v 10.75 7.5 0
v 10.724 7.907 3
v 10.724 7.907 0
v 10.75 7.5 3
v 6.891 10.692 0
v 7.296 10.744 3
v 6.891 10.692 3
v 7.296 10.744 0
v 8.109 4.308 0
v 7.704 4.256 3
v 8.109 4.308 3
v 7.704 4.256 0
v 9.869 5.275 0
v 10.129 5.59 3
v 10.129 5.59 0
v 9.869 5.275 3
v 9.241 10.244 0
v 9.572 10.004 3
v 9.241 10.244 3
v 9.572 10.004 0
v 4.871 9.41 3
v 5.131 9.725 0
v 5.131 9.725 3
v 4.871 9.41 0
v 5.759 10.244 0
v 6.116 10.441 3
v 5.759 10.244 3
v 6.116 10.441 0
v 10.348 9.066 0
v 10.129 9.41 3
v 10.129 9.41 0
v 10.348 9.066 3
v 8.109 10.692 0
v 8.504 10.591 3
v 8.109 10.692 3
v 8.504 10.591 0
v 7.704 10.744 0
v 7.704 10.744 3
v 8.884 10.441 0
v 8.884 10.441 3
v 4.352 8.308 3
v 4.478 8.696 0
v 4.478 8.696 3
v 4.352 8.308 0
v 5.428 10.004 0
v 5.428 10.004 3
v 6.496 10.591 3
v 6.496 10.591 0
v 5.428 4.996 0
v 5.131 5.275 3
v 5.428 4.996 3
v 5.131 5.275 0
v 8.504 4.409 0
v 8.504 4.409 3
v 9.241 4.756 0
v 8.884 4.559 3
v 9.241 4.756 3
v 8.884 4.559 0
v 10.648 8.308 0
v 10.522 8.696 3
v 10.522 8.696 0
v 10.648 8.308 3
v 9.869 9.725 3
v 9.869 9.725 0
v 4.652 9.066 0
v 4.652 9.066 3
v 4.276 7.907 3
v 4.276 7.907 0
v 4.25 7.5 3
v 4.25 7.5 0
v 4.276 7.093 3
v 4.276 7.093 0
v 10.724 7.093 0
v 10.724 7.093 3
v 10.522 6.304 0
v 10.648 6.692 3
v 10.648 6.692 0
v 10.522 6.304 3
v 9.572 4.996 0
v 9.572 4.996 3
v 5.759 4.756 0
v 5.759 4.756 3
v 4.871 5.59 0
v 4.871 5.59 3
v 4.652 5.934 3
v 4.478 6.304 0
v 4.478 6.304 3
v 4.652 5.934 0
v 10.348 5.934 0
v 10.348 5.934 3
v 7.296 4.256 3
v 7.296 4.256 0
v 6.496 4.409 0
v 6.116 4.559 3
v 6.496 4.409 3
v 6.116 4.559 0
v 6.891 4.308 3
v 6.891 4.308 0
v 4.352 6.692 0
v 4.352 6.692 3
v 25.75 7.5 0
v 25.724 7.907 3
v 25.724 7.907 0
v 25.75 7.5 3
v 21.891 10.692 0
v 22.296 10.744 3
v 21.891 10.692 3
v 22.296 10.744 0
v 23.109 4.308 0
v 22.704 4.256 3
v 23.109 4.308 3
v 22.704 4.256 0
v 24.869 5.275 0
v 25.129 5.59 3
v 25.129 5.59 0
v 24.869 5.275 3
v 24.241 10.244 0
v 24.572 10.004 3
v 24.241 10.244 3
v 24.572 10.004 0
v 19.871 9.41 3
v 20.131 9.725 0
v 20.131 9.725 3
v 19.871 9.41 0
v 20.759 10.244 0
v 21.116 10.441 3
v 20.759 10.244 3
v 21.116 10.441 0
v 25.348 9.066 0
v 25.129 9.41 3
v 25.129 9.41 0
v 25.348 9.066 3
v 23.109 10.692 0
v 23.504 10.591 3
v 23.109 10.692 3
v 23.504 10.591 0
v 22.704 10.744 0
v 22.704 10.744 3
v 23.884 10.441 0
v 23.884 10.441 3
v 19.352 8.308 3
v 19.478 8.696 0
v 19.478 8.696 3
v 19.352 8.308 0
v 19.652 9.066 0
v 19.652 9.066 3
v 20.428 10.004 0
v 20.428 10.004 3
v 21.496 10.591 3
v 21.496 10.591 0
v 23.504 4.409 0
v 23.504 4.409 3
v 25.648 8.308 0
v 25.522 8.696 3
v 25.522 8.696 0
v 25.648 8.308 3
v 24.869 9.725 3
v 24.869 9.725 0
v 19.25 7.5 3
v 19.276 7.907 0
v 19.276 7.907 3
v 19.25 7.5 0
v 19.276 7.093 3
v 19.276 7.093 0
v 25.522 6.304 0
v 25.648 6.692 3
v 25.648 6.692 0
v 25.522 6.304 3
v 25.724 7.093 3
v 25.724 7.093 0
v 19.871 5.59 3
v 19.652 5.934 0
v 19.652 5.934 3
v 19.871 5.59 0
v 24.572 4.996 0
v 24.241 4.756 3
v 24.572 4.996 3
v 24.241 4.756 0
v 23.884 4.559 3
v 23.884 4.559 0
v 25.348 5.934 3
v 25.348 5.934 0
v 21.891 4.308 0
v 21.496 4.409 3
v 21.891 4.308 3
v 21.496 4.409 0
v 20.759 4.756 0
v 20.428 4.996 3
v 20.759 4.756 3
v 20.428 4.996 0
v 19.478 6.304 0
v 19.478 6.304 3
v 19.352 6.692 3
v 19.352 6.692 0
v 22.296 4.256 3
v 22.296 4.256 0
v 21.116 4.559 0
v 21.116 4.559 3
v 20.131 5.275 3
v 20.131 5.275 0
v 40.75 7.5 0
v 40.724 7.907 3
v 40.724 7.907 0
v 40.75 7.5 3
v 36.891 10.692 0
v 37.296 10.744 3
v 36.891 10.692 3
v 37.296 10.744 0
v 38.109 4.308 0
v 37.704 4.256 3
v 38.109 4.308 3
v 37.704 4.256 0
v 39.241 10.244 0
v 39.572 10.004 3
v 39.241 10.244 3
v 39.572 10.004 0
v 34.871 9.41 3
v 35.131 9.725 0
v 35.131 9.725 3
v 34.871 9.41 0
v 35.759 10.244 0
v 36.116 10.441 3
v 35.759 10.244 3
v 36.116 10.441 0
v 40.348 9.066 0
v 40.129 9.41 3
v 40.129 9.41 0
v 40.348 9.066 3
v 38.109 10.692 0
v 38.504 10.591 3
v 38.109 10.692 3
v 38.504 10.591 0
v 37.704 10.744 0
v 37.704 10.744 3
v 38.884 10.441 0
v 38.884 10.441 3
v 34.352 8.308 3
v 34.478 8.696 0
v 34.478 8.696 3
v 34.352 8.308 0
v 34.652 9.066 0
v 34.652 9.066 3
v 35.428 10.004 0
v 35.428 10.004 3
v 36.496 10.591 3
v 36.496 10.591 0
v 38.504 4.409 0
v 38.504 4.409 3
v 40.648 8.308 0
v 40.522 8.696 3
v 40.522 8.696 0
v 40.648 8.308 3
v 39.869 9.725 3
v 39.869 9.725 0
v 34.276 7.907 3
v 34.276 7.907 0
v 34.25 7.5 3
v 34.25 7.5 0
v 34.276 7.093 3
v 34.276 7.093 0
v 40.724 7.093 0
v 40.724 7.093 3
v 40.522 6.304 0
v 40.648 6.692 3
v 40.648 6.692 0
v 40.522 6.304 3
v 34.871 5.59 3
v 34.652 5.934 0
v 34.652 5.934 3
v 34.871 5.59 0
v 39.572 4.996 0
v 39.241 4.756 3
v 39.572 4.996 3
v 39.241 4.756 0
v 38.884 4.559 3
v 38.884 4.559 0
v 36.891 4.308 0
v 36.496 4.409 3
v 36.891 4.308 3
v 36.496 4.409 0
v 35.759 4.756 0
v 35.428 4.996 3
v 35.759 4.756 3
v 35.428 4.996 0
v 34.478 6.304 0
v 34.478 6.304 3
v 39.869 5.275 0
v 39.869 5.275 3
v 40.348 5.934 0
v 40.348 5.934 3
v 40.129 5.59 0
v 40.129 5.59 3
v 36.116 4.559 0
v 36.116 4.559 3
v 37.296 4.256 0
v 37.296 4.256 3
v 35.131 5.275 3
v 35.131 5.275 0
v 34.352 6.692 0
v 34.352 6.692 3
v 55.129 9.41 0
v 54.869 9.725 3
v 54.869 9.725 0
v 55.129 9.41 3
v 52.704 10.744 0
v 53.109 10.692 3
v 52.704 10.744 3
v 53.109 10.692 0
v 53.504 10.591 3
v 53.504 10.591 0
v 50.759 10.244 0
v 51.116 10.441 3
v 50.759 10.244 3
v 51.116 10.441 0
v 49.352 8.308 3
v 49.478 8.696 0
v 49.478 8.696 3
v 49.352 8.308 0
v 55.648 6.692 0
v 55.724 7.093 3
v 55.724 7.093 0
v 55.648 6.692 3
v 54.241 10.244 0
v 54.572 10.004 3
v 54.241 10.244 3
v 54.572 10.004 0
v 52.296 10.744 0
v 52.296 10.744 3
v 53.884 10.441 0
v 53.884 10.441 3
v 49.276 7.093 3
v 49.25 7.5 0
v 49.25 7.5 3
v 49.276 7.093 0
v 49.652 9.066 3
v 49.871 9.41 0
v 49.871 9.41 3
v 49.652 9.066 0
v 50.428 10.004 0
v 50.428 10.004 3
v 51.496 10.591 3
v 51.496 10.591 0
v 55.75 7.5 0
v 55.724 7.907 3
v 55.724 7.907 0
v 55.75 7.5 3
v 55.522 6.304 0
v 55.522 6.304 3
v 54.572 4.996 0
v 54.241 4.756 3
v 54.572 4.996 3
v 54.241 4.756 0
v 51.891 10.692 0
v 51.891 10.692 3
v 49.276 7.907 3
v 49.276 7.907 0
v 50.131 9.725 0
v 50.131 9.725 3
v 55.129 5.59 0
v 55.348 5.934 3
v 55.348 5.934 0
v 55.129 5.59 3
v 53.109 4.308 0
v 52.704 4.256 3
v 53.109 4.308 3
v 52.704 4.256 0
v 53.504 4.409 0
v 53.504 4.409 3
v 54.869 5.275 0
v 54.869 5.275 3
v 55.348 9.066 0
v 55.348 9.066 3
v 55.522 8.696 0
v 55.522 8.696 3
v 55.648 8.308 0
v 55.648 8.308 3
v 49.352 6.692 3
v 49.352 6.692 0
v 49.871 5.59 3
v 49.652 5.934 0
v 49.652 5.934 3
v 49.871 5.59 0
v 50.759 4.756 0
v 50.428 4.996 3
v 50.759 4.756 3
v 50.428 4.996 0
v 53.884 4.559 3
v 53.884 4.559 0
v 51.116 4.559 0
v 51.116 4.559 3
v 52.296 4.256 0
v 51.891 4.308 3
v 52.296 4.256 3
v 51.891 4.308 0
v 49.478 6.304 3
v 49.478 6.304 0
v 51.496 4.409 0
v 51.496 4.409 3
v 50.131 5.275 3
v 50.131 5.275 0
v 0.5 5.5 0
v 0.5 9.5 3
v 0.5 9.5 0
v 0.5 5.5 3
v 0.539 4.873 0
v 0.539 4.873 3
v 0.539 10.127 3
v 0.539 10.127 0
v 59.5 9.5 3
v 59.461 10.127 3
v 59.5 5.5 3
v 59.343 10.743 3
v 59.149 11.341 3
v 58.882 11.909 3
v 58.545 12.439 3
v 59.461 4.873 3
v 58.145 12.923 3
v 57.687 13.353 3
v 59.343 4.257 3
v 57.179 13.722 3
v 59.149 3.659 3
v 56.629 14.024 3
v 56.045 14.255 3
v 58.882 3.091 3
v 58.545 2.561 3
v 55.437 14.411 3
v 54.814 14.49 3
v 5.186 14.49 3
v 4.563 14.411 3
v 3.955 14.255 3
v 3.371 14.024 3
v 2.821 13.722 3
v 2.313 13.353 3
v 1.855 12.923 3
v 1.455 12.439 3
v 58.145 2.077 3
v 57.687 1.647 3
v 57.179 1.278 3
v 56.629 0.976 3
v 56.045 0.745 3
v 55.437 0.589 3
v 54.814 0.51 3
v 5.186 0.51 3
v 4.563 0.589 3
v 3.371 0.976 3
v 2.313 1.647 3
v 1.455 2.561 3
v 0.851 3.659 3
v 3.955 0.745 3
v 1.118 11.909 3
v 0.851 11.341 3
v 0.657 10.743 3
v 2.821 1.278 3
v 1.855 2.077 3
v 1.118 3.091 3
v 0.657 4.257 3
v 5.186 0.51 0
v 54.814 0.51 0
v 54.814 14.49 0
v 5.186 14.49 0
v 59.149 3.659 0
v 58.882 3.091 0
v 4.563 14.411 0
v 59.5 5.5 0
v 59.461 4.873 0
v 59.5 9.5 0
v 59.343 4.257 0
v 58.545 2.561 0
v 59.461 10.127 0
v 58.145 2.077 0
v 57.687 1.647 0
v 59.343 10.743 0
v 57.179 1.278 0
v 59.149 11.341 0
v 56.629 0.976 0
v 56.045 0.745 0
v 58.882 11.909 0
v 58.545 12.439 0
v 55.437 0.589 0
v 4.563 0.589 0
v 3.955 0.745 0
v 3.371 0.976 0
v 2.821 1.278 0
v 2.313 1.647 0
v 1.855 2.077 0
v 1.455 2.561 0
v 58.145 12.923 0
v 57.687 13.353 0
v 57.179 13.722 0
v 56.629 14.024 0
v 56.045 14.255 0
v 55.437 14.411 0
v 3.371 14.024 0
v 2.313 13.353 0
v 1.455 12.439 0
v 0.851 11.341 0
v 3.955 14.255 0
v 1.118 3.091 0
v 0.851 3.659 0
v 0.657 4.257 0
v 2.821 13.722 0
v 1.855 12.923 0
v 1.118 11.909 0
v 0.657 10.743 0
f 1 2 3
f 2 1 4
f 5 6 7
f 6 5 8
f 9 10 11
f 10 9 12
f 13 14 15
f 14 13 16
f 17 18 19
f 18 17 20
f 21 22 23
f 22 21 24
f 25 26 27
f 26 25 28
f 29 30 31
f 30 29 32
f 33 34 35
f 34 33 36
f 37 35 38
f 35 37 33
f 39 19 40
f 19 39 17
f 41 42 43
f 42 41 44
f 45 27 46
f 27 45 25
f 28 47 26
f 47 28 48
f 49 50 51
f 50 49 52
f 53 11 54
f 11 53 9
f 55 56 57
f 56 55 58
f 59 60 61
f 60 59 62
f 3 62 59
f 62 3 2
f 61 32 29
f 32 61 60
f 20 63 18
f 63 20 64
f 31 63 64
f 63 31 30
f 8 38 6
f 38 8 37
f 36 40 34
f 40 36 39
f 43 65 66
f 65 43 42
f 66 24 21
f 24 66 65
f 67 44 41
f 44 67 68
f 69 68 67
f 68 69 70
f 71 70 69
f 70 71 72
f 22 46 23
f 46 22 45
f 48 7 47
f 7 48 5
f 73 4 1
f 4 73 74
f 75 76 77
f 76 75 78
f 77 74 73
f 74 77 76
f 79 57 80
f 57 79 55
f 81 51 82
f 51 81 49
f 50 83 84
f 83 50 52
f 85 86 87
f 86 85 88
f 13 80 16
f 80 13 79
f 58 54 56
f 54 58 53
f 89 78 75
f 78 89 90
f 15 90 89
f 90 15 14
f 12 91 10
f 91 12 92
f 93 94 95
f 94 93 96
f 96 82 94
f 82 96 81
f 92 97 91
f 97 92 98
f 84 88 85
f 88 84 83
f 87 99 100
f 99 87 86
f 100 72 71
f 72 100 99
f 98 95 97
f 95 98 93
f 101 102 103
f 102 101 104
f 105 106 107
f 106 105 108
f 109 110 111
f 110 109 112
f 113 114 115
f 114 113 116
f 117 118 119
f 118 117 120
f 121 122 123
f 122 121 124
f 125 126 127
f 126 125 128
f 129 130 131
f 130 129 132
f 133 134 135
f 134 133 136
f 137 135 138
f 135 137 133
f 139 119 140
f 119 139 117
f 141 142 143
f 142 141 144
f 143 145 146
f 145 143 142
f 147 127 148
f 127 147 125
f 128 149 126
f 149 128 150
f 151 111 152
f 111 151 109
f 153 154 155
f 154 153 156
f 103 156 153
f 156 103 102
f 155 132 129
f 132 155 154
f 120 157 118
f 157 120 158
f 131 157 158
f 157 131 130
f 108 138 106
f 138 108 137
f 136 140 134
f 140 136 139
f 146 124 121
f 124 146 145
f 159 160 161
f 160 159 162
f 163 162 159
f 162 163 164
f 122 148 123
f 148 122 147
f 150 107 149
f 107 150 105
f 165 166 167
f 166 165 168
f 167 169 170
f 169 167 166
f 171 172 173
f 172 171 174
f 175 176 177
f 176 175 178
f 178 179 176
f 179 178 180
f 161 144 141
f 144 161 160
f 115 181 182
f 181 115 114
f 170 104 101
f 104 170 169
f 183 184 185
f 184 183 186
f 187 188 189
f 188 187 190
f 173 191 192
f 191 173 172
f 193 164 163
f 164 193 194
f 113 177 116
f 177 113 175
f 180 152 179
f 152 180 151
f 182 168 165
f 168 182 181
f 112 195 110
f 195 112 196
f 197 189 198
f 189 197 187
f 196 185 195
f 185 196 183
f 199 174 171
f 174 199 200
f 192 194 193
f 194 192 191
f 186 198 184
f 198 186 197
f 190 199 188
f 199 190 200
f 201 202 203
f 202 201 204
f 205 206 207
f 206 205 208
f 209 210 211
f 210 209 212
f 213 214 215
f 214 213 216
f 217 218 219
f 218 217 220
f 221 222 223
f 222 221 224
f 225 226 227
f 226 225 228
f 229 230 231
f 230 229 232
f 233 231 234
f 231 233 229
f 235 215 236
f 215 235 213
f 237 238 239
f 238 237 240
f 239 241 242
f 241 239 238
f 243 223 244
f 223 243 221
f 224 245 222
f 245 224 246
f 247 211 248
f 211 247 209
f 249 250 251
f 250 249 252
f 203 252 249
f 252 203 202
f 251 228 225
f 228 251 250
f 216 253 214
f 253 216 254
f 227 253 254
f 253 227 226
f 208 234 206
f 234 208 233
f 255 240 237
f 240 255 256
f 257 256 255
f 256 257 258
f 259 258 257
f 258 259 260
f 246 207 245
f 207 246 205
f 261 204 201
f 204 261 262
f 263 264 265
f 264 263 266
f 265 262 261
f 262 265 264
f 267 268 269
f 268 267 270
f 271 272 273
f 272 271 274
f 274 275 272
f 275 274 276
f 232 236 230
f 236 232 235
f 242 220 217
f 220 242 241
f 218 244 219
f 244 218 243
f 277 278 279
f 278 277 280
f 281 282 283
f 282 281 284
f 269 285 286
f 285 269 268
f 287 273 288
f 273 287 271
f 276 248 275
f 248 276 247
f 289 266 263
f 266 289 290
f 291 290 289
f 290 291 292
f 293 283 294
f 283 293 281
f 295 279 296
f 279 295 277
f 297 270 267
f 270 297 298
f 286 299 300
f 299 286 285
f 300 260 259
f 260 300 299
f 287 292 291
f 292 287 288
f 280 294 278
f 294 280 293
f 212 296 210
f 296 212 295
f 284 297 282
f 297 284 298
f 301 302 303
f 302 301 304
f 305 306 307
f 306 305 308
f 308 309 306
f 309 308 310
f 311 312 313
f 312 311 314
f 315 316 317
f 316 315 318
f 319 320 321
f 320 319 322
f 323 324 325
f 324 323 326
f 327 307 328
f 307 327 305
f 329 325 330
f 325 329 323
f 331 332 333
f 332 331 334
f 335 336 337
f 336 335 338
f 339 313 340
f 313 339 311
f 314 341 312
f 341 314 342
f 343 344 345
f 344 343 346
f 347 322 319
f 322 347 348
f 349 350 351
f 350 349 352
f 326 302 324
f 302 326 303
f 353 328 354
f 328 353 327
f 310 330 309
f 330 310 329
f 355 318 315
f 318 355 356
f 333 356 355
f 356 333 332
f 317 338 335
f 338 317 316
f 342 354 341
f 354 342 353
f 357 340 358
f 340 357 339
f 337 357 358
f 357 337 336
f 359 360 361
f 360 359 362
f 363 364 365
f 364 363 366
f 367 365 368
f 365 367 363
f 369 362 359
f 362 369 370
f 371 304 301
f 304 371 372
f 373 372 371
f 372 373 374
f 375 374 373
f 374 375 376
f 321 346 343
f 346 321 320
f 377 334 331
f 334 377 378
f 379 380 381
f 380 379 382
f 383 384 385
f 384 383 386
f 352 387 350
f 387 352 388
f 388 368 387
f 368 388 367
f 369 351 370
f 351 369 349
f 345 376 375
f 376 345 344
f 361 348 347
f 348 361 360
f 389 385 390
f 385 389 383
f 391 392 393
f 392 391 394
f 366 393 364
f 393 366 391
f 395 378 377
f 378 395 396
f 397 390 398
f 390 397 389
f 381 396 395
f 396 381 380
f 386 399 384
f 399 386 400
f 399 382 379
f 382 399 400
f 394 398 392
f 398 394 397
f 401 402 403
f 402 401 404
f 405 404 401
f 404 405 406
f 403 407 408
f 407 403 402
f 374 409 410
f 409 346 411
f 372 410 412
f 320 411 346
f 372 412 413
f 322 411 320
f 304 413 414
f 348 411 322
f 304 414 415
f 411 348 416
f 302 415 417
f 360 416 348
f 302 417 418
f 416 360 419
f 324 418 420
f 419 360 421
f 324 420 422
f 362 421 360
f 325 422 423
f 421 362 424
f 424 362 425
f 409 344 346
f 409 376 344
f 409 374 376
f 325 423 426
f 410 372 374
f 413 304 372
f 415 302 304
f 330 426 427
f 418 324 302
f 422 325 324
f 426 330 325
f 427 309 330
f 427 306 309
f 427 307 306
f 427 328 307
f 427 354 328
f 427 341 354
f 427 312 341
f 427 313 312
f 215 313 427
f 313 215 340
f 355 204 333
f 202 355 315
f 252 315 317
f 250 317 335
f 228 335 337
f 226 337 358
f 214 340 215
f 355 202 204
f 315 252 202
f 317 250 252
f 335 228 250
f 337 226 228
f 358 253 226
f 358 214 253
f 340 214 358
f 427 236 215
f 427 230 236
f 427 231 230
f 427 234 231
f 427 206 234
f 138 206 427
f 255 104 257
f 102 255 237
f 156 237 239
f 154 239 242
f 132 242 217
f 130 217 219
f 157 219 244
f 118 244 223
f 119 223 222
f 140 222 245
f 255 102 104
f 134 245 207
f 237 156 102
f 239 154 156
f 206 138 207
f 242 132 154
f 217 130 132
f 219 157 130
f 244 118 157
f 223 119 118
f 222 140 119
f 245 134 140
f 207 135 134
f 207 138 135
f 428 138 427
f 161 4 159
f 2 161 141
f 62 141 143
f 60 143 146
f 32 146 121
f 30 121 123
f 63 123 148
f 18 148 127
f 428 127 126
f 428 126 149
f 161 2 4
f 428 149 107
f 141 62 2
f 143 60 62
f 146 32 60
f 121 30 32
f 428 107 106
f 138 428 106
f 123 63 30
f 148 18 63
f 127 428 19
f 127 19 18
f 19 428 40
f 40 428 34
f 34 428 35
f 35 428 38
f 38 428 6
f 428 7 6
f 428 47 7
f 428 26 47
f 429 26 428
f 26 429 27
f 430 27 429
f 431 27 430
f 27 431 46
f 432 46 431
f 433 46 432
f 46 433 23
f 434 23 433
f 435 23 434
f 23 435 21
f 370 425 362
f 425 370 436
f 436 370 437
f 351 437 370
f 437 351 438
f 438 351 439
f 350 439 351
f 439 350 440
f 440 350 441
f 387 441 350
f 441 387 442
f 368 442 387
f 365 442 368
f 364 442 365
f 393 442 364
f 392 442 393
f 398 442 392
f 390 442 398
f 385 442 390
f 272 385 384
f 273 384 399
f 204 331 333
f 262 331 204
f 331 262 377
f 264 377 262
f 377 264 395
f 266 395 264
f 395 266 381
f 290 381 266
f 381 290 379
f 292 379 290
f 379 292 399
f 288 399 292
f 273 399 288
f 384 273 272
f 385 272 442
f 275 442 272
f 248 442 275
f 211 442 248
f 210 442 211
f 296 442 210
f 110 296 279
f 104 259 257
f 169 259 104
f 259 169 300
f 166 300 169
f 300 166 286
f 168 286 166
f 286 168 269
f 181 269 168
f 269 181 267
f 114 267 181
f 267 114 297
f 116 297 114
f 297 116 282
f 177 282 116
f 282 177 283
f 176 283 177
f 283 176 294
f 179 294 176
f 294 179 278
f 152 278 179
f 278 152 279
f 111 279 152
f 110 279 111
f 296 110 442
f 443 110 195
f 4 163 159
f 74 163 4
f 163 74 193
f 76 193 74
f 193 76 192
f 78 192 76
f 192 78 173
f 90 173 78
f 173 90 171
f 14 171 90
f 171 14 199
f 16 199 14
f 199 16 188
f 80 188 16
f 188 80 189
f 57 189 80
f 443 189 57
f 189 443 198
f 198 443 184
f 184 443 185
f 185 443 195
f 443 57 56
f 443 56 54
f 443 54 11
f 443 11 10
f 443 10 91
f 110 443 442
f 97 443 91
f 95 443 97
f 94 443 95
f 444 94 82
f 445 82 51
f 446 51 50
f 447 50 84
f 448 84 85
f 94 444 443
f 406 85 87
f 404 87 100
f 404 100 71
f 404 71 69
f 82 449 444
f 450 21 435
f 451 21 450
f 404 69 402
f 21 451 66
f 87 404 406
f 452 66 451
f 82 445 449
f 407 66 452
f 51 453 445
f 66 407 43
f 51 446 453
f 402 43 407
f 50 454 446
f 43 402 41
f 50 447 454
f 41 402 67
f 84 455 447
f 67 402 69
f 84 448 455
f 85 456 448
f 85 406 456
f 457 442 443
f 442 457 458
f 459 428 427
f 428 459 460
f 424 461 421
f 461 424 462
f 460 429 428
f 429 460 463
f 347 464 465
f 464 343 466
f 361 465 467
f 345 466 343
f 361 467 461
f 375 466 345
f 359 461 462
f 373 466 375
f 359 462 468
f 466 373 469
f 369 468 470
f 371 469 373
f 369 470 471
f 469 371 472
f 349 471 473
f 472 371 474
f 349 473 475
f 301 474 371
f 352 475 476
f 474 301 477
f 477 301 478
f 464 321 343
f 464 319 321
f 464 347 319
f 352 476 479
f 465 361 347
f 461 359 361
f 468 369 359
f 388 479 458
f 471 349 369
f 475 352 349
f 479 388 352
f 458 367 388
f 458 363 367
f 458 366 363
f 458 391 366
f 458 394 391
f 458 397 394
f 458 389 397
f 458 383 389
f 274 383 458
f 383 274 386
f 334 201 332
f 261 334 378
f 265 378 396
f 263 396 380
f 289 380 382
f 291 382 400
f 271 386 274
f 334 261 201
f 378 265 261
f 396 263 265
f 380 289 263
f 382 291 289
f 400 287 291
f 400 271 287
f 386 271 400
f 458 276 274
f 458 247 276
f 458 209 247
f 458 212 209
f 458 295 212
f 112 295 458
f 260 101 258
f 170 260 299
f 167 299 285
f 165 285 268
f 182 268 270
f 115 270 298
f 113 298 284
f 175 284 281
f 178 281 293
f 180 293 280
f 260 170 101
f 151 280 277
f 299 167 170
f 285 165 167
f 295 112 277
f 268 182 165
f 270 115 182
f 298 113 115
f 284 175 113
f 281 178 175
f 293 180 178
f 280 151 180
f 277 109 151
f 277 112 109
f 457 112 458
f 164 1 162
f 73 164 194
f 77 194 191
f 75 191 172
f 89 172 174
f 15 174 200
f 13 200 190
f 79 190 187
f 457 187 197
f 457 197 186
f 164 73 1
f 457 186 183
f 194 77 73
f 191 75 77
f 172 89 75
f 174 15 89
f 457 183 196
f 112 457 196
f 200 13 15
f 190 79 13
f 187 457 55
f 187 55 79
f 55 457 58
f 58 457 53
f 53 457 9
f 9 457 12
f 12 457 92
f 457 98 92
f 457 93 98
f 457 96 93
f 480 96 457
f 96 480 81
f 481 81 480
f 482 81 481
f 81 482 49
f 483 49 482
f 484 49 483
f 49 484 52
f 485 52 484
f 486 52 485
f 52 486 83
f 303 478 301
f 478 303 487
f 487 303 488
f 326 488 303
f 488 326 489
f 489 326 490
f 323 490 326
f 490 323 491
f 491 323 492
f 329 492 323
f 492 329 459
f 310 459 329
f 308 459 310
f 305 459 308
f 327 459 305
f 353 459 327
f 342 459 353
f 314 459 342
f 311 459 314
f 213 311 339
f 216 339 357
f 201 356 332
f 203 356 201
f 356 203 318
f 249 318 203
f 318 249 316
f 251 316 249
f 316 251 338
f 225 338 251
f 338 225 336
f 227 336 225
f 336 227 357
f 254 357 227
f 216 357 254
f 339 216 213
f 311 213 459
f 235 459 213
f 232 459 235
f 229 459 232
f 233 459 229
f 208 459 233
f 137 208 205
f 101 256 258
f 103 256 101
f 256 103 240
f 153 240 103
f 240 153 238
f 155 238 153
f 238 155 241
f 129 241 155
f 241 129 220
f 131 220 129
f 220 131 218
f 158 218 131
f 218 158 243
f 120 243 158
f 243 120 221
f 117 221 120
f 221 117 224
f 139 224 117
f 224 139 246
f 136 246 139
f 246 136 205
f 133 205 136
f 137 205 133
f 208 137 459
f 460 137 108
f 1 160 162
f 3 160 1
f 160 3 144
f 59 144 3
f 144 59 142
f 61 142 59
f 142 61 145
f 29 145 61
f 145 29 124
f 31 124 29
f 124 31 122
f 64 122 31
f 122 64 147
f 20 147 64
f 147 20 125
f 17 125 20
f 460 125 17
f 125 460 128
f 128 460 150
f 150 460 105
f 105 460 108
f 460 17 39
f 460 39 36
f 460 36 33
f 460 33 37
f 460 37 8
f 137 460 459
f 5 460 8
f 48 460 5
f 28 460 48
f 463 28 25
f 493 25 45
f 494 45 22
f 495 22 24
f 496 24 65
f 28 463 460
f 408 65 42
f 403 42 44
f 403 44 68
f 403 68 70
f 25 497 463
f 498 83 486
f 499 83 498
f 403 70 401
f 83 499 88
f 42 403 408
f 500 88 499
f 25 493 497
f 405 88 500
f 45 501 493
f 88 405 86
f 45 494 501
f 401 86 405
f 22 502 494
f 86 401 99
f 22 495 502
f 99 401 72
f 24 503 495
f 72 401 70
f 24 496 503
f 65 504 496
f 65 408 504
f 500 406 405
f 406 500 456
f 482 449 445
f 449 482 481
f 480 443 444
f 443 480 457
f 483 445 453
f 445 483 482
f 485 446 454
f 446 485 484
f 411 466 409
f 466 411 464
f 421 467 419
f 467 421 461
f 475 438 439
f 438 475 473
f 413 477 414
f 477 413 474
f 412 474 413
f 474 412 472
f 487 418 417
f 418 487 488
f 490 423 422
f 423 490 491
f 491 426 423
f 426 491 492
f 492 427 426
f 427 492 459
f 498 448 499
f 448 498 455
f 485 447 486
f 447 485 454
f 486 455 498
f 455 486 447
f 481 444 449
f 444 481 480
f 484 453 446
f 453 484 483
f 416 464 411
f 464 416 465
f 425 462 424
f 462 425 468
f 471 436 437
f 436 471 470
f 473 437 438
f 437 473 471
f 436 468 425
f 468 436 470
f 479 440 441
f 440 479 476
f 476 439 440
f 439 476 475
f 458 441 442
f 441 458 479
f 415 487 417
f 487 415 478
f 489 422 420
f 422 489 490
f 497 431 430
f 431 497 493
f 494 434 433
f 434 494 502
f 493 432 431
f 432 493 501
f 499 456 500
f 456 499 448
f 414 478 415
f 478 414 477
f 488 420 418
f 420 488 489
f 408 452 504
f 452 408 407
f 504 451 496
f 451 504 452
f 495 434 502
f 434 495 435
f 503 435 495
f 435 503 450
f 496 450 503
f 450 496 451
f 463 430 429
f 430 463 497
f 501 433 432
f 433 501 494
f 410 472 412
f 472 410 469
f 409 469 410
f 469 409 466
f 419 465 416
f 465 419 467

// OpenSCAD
// Generated by SolidPython 1.1.3 on 2023-01-09 14:55:34
$fn = 50;


difference() {
	union() {
		translate(v = [30.0000000000, 7.5000000000, 0]) {
			rotate(a = [0, 0, 0]) {
				hull() {
					translate(v = [-24.5000000000, 2.0000000000, 0]) {
						rotate(a = [0, 0, 0]) {
							translate(v = [0, 0, 0]) {
								rotate(a = [0, 0, 0]) {
									cylinder(h = 3, r = 5);
								}
							}
						}
					}
					translate(v = [24.5000000000, 2.0000000000, 0]) {
						rotate(a = [0, 0, 0]) {
							translate(v = [0, 0, 0]) {
								rotate(a = [0, 0, 0]) {
									cylinder(h = 3, r = 5);
								}
							}
						}
					}
					translate(v = [-24.5000000000, -2.0000000000, 0]) {
						rotate(a = [0, 0, 0]) {
							translate(v = [0, 0, 0]) {
								rotate(a = [0, 0, 0]) {
									cylinder(h = 3, r = 5);
								}
							}
						}
					}
					translate(v = [24.5000000000, -2.0000000000, 0]) {
						rotate(a = [0, 0, 0]) {
							translate(v = [0, 0, 0]) {
								rotate(a = [0, 0, 0]) {
									cylinder(h = 3, r = 5);
								}
							}
						}
					}
				}
			}
		}
	}
	union() {
		translate(v = [7.5000000000, 7.5000000000, 0]) {
			rotate(a = [0, 0, 0]) {
				translate(v = [0, 0, -50]) {
					rotate(a = [0, 0, 0]) {
						cylinder(h = 100, r = 3.2500000000);
					}
				}
			}
		}
		translate(v = [22.5000000000, 7.5000000000, 0]) {
			rotate(a = [0, 0, 0]) {
				translate(v = [0, 0, -50]) {
					rotate(a = [0, 0, 0]) {
						cylinder(h = 100, r = 3.2500000000);
					}
				}
			}
		}
		translate(v = [37.5000000000, 7.5000000000, 0]) {
			rotate(a = [0, 0, 0]) {
				translate(v = [0, 0, -50]) {
					rotate(a = [0, 0, 0]) {
						cylinder(h = 100, r = 3.2500000000);
					}
				}
			}
		}
		translate(v = [52.5000000000, 7.5000000000, 0]) {
			rotate(a = [0, 0, 0]) {
				translate(v = [0, 0, -50]) {
					rotate(a = [0, 0, 0]) {
						cylinder(h = 100, r = 3.2500000000);
					}
				}
			}
		}
	}
}
/***********************************************
*********      SolidPython code:      **********
************************************************
 
from solid import *
import os
import subprocess

import oomB

import opsc_library_gen

mode = "laser"
#mode = "3d_print"

defined_objects = {}

radius_dict = {}
countersunk_dict = {}


def set_mode(m):
    global mode
    mode = m
    radius_dict['M6'] = 6.5/2
    radius_dict['M3'] = 3.3/2
    if mode == "laser":
        radius_dict['M6'] = 6/2
        radius_dict['M3'] = 3/2

    countersunk_dict['M3'] = {}
    countersunk_dict['M3']['little_rad'] = radius_dict['M3']
    countersunk_dict['M3']['big_rad'] = (5.5+0.6)/2
    if mode == "laser":
        countersunk_dict['M3']['big_rad'] = (4.75+0.6)/2
        countersunk_dict['M3']['little_rad'] = (4.75+0.6)/2

    countersunk_dict['M3']['height'] = 1.7


def opsc_make_object(filename, objects, save_type="none",resolution=50, layers = 1, tilediff = 200, mode="laser"):
    set_mode(mode)
    save_type = save_type.lower()
    os.makedirs(os.path.dirname(filename), exist_ok=True)
    final_object = opsc_get_object(objects)
    # Save the final object to the specified filename    
    scad_render_to_file(final_object, filename, file_header='$fn = %s;' % resolution, include_orig_code=True)
    if mode == "laser":
        filename_laser = filename.replace(".scad","-flat.scad")
        scad_render_to_file(getLaser(final_object, layers=layers, tilediff=tilediff), filename_laser, file_header='$fn = %s;' % resolution, include_orig_code=True)
        if save_type == "all":
            saveToAll(filename_laser)
        elif save_type == "dxf":
            saveToDxf(filename_laser)
    if save_type == "all":
        saveToAll(filename)
    elif save_type == "dxf":
        saveToDxf(filename)


def opsc_get_object(objects):
    # Create the solidpython objects
    positive_objects = [get_opsc_item(obj) for obj in objects if obj['type'] == 'positive']
    negative_objects = [get_opsc_item(obj) for obj in objects if obj['type'] == 'negative']
    # Union the positive objects
    positive_object = union()(*positive_objects)
    # Union the negative objects
    negative_object = union()(*negative_objects)
    # Create the final object by subtracting the negative objects from the positive objects
    return difference()(positive_object, negative_object)

def get_opsc_item(params):
    # A dictionary to map radius string values to numerical values
    #radius_dict = {'small': 5, 'medium': 10, 'large': 15}
    # An array of function names for basic shapes
    basic_shapes = ['cube', 'sphere', 'cylinder']
    
    # An array of function names for other shapes
    other_shapes = ['hole', 'slot', 'rounded_rectangle', 'countersunk']
    


    # Convert radius to r if present, and remove radius from the params dictionary
    if 'radius' in params:
        if isinstance(params['radius'], str):
            # Use the radius_dict to map the radius string value to a numerical value
            params['r'] = radius_dict[params['radius']]
        else:
            params['r'] = params['radius']
        del params['radius']
    

    # Check if the object type is a basic shape
    if params['shape'] in basic_shapes:
        # Remove shape and unexpected dictionary values
        allowed_keys = {'size', 'r', 'r1', 'r2', 'd', 'h', 'rw', 'rh', 'dw', 'dh'}
        shape_params = {k: v for k, v in params.items() if k in allowed_keys}

        # Call the corresponding function for the shape parameter, using ** notation to pass the shape_params dictionary as keyword arguments
        return get_opsc_transform(params,globals()[params['shape']](**shape_params))
    
    # If the object type is not a basic shape, check if it's a defined object or one of the other shapes
    elif params['shape'] in other_shapes:
        # Call the corresponding function for the shape parameter, passing the params dictionary as an argument
        p2 = copy.deepcopy(params)
        p2["pos"] = [0,0,0]
        return get_opsc_transform(params,globals()[params['shape']](p2))
    
    # If the object is not a basic shape or a defined object, try to import it from a .scad file
    else:
        obj = defined_objects[params['shape']]
        return get_opsc_transform(params,obj)

def get_opsc_transform(params, solid_obj):
    # Rotate the object based on the 'rot' field in the params dictionary, or the 'rotX', 'rotY', and 'rotZ' fields if 'rot' is not present
    rot = params.get('rot', [])
    if rot:
        rotX, rotY, rotZ = rot
    else:
        rotX = params.get('rotX', 0)
        rotY = params.get('rotY', 0)
        rotZ = params.get('rotZ', 0)
    solid_obj = rotate([rotX, rotY, rotZ])(solid_obj)

    # Translate the object based on the 'pos' field in the params dictionary, or the 'x', 'y', and 'z' fields if 'pos' is not present
    pos = params.get('pos', [])
    if pos:
        x, y, z = pos
    else:
        x = params.get('x', 0)
        y = params.get('y', 0)
        z = params.get('z', 0)
    solid_obj = translate([x, y, z])(solid_obj)
    return solid_obj


import random

def opsc_easy_array(type, shape, repeats, pos_start, shift_arr, **kwargs):
    for i in range(0,3):
        repeats.append(1)
        pos_start.append(0)
        shift_arr.append(0)
    return_objects = []

    for x in range(0,repeats[0]):
        for y in range(0,repeats[1]):
            for z in range(0,repeats[2]):
                return_objects.append(opsc_easy(type, shape, pos=[pos_start[0]+x*shift_arr[0],pos_start[1]+y*shift_arr[1],pos_start[2]+z*shift_arr[2]], **kwargs))
    return return_objects                



def opsc_easy(type, shape, **kwargs):
    obj = {
        'type': type,
        'shape': shape
    }
    for param in ['size', 'r', 'r1', 'r2', 'd', 'h', 'rw', 'rh', 'dw', 'dh', 'pos', 'x', 'y', 'z', 'rot', 'rotX', 'rotY', 'rotZ', "w"]:
        if param in kwargs:
            obj[param] = kwargs[param]
    return obj

def hole(params):
    p2 = copy.deepcopy(params)  
    # Check if the radius is a string and replace it with the corresponding value from the dictionary
    if isinstance(p2['r'], str):
        p2['r'] = radius_dict[p2['r']]
    
    # Set the height to 100 if not specified
    if 'h' not in p2:
        p2['h'] = 100
        p2["pos"] = [0,0,-50]
    p2["center"] = True
    # Create the cylinder object
    p2["shape"] = "cylinder"
    p2["type"] = "positive"

    return get_opsc_item(p2)

import copy

def countersunk(params):
    p2 = copy.deepcopy(params)
    counter_rad = p2['r']
    p2['r'] = radius_dict[p2['r']]
    hp = copy.deepcopy(p2)
    hp["type"] = "positive"
    hp["shape"] = "hole"
    del hp["rot"]
    hol = get_opsc_item(hp)
    
    cp = copy.deepcopy(p2)
    cp["h"] = countersunk_dict[counter_rad]["height"]
    cp["r2"] = countersunk_dict[counter_rad]["little_rad"]
    cp["r1"] = countersunk_dict[counter_rad]["big_rad"]
    del cp["r"]
    del cp["rot"]
    cp["type"] = "positive"
    cp["shape"] = "cylinder"
    cp["pos"] = [0,0,0]

    top = get_opsc_item(cp)
    return union()(hol,top)



def slot(params):  
    p2 = copy.deepcopy(params) 
    if isinstance(p2['r'], str):
        p2['r'] = radius_dict[p2['r']]
    p2["type"] = "positive"
    p2["shape"] = "hole"
    del p2["rot"]
    p2["pos"] = [0,0,0]
    left = copy.deepcopy(p2)
    right = copy.deepcopy(p2)
    left["pos"][0] = p2["w"] / 2 - p2["r"] 
    
    right["pos"][0] = -p2["w"] / 2 + p2["r"] 
    pass
    leftObj = get_opsc_item(left)
    rightObj = get_opsc_item(right)
    return hull()(leftObj, rightObj)

def rounded_rectangle(params):   
    p2 = copy.deepcopy(params) 
    p2["h"] = p2["size"][2]
    p2["pos"] = p2.get("pos", [0, 0, 0]) 
    p2["type"] = "positive"
    p2["shape"] = "hole"
    p2["pos"] = [0,0,0]
    
    if 'rot' in p2:
        del p2["rot"]   
    if 'r' not in p2:
        p2["r"] = 5 
    tl = copy.deepcopy(p2)
    tr = copy.deepcopy(p2)
    bl = copy.deepcopy(p2)
    br = copy.deepcopy(p2)
    tl["pos"][0] = -(p2["size"][0] - p2["r"]*2)/2
    tl["pos"][1] = (p2["size"][1] - p2["r"]*2)/2
    tr["pos"][0] = (p2["size"][0] - p2["r"]*2)/2
    tr["pos"][1] = (p2["size"][1] - p2["r"]*2)/2
    bl["pos"][0] = -(p2["size"][0] - p2["r"]*2)/2
    bl["pos"][1] = -(p2["size"][1] - p2["r"]*2)/2
    br["pos"][0] = (p2["size"][0] - p2["r"]*2)/2
    br["pos"][1] = -(p2["size"][1] - p2["r"]*2)/2
    del tl["size"]
    del tr["size"]
    del bl["size"]
    del br["size"]
    tlo = get_opsc_item(tl)
    tro = get_opsc_item(tr)
    blo = get_opsc_item(bl)
    bro = get_opsc_item(br)    
    return hull()(tlo, tro, blo, bro)



def import_scad_object(filename):
    # Import the .scad file and convert it to a solidpython object
    #filename = "parts"
    obj = import_scad(filename)
    return obj.main()
    


import os
import solid as solidpython

# A dictionary to store the defined objects


def load_scad_objects():
    opsc_library_gen.gen_library(defined_objects)

import random

def test(num_objects):
    objects = []
    for i in range(num_objects):
        # Choose a random shape
        #shape = random.choice(['cube', 'sphere', 'cylinder', 'hole', 'slot', "rounded_rectangle"])
        shape = random.choice(["rounded_rectangle"])

        # Choose a random type
        type = random.choice(['positive', 'negative'])
        
        # Create an empty object dictionary
        obj = {'shape': shape, 'type': type}
        
        # Set shape-specific parameters
        if obj['shape'] in ['cube']:
            obj['size'] =  [random.uniform(5, 15), random.uniform(5, 15), random.uniform(5, 15)]
        if obj['shape'] in ['rounded_rectangle']:
            obj['size'] =  [random.uniform(5, 15), random.uniform(5, 15), random.uniform(5, 15)]
            obj['r'] = random.uniform(0.5, 5)
        elif obj['shape'] == 'sphere':
            obj['r'] = random.uniform(5, 15)
        elif obj['shape'] in ['cylinder', 'hole']:
            obj['r'] = random.uniform(0.5, 5)
            obj['h'] = random.uniform(5, 15)
        elif obj['shape'] == 'slot':
            obj['r'] = random.uniform(0.5, 5)
            obj['h'] = random.uniform(5, 15)
            obj['w'] = random.uniform(5, 15)
        
        # Set a random position and rotation
        obj['pos'] = [random.uniform(-20, 20), random.uniform(-20, 20), random.uniform(-20, 20)]
        obj['rot'] = [random.uniform(-180, 180), random.uniform(-180, 180), random.uniform(-180, 180)]
        
        # Add the object to the list
        objects.append(obj)
    return objects

####### old file saving
def saveToAll(fileIn):
    saveToDxf(fileIn)
    saveToPng(fileIn)
    saveToStl(fileIn)
    saveToSvg(fileIn)

def saveToDxf(fileIn, fileOut="", copy_to_laser=True):
    if fileOut == "":
        fileOut = fileIn.replace(".scad",".dxf")
    saveToFile(fileIn, fileOut)


    
def saveToPng(fileIn, fileOut="",extra="--render"):
    if fileOut == "":
        fileOut = fileIn.replace(".scad",".png")
    saveToFile(fileIn, fileOut)

def saveToStl(fileIn, fileOut=""):
    if fileOut == "":
        fileOut = fileIn.replace(".scad",".stl")
    saveToFile(fileIn, fileOut)
    
def saveToSvg(fileIn, fileOut=""):
    if fileOut == "":
        fileOut = fileIn.replace(".scad",".svg")
    saveToFile(fileIn, fileOut)

def saveToFile(fileIn, fileOut,extra=""):
    #extra = extra + " --colorscheme Tomorrow"

    launchStr = 'openscad -o "' + fileOut + '"' + extra + ' "' + fileIn + '"'
    if ".png" in fileOut:
        launchStr = launchStr + " --render"
    print("            saveToFile launch string: " + launchStr)
    subprocess.run(launchStr)
    x=0

def getLaser(final_object,start=1.5,layers=1,thickness=3,tilediff=200):
        rv= []

        for x in range(layers):
            rv.append(translate([0,x*tilediff,0])(
                    projection()(
                        intersection()(translate([-500,-500,start+x*thickness])(cube(size=[1000,1000,0.1])),
                            final_object
                        )
                    )
            )
            )
            
        return union()(rv)

set_mode("laser")
load_scad_objects() 
 
************************************************/
